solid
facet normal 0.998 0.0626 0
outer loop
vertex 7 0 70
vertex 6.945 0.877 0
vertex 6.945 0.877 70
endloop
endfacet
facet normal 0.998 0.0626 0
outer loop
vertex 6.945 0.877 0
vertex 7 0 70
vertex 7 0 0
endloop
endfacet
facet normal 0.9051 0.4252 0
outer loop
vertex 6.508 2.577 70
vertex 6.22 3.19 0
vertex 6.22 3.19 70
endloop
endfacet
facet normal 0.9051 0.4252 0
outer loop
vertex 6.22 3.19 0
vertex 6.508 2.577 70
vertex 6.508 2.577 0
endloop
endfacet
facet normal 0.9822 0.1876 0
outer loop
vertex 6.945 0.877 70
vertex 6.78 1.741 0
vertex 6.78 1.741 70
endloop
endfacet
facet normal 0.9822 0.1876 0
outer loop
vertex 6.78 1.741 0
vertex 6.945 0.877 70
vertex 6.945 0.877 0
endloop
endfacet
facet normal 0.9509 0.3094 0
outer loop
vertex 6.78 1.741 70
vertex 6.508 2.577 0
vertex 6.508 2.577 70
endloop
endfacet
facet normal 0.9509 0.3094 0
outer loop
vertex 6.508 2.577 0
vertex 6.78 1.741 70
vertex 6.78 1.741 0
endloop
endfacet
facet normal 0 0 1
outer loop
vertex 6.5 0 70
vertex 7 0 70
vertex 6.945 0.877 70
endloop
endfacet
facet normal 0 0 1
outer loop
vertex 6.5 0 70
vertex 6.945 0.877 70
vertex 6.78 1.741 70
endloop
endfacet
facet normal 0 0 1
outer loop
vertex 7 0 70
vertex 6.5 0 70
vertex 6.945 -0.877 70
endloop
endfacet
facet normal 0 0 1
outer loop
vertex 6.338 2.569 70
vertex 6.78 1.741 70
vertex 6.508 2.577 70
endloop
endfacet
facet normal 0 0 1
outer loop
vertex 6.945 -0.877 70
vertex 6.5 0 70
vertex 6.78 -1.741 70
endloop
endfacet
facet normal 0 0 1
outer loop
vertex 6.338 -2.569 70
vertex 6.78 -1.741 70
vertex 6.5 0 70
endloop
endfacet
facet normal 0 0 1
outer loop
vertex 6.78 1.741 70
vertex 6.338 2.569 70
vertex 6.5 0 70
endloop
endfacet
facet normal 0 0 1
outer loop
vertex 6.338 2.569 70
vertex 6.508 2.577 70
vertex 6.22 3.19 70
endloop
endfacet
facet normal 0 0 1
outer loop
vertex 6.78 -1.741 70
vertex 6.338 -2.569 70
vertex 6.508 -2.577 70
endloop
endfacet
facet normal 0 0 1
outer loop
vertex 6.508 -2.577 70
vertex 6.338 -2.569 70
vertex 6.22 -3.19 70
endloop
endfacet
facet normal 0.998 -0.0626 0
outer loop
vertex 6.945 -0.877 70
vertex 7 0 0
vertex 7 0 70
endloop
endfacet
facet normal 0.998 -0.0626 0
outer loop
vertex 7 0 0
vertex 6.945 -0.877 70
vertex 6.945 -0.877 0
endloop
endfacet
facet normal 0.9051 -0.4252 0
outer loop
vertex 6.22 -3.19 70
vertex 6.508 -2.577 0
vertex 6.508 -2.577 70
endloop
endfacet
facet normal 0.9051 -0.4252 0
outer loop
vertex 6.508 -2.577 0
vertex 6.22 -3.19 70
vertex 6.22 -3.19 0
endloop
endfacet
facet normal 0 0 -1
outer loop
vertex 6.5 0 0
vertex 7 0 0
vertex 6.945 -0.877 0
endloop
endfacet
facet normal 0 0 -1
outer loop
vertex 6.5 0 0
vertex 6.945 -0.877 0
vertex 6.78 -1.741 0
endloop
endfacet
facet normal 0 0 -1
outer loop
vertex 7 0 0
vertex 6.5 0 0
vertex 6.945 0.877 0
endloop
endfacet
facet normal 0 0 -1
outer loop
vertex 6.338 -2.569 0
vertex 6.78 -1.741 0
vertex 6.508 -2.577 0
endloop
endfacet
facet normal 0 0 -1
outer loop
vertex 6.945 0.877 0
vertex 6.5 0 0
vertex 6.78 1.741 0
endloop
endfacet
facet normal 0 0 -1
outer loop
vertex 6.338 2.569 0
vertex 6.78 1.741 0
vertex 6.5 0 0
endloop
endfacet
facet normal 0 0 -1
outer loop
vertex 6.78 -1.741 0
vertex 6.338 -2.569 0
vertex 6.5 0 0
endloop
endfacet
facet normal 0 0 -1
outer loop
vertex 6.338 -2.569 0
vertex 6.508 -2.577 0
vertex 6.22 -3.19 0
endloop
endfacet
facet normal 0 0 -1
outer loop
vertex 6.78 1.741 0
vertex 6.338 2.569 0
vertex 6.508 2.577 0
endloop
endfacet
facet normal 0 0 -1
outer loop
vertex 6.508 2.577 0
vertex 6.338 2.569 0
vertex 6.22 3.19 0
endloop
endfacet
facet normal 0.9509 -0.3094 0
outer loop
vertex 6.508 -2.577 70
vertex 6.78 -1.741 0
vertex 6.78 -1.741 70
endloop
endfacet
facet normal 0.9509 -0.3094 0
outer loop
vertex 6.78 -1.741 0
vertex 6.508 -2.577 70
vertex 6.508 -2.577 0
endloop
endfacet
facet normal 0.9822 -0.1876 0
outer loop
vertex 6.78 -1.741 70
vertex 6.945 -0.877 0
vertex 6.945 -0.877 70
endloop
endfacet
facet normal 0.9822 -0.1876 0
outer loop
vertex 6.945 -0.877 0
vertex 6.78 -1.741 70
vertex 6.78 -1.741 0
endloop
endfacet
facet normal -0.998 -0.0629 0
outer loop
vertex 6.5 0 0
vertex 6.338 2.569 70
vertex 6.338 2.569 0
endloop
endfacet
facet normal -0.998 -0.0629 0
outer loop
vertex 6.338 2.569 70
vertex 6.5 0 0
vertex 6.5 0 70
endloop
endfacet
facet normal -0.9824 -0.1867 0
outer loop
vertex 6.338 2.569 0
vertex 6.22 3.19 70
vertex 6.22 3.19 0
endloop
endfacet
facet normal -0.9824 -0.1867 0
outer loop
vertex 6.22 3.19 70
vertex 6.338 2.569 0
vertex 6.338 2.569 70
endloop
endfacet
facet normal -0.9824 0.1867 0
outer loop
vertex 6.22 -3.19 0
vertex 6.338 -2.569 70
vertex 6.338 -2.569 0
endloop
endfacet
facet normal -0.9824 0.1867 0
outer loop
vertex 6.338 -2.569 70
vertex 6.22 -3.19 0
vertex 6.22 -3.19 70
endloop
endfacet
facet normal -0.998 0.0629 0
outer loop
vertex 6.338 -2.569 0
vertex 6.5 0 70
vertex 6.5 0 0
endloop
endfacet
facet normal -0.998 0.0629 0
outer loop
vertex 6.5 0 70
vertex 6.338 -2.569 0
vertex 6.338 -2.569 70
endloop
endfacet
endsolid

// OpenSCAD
$fn = 50;


difference() {
	union() {
		cylinder(h = 70, r = 7.0000000000);
		translate(v = [-17.0000000000, 0, 0]) {
			cylinder(h = 70, r = 7.0000000000);
		}
	}
	union() {
		cylinder(h = 70, r = 3.2500000000);
		cylinder(h = 70, r = 1.8000000000);
		cylinder(h = 70, r = 1.8000000000);
		cylinder(h = 70, r = 1.8000000000);
		translate(v = [-21.5000000000, 0, 0]) {
			hull() {
				translate(v = [-3.7500000000, 0.0000000000, 0]) {
					cylinder(h = 70, r = 10.5000000000);
				}
				translate(v = [3.7500000000, 0.0000000000, 0]) {
					cylinder(h = 70, r = 10.5000000000);
				}
				translate(v = [-3.7500000000, -0.0000000000, 0]) {
					cylinder(h = 70, r = 10.5000000000);
				}
				translate(v = [3.7500000000, -0.0000000000, 0]) {
					cylinder(h = 70, r = 10.5000000000);
				}
			}
		}
		translate(v = [-14.0000000000, 0, 0.0000000000]) {
			cylinder(h = 70, r = 20.5000000000);
		}
	}
}
